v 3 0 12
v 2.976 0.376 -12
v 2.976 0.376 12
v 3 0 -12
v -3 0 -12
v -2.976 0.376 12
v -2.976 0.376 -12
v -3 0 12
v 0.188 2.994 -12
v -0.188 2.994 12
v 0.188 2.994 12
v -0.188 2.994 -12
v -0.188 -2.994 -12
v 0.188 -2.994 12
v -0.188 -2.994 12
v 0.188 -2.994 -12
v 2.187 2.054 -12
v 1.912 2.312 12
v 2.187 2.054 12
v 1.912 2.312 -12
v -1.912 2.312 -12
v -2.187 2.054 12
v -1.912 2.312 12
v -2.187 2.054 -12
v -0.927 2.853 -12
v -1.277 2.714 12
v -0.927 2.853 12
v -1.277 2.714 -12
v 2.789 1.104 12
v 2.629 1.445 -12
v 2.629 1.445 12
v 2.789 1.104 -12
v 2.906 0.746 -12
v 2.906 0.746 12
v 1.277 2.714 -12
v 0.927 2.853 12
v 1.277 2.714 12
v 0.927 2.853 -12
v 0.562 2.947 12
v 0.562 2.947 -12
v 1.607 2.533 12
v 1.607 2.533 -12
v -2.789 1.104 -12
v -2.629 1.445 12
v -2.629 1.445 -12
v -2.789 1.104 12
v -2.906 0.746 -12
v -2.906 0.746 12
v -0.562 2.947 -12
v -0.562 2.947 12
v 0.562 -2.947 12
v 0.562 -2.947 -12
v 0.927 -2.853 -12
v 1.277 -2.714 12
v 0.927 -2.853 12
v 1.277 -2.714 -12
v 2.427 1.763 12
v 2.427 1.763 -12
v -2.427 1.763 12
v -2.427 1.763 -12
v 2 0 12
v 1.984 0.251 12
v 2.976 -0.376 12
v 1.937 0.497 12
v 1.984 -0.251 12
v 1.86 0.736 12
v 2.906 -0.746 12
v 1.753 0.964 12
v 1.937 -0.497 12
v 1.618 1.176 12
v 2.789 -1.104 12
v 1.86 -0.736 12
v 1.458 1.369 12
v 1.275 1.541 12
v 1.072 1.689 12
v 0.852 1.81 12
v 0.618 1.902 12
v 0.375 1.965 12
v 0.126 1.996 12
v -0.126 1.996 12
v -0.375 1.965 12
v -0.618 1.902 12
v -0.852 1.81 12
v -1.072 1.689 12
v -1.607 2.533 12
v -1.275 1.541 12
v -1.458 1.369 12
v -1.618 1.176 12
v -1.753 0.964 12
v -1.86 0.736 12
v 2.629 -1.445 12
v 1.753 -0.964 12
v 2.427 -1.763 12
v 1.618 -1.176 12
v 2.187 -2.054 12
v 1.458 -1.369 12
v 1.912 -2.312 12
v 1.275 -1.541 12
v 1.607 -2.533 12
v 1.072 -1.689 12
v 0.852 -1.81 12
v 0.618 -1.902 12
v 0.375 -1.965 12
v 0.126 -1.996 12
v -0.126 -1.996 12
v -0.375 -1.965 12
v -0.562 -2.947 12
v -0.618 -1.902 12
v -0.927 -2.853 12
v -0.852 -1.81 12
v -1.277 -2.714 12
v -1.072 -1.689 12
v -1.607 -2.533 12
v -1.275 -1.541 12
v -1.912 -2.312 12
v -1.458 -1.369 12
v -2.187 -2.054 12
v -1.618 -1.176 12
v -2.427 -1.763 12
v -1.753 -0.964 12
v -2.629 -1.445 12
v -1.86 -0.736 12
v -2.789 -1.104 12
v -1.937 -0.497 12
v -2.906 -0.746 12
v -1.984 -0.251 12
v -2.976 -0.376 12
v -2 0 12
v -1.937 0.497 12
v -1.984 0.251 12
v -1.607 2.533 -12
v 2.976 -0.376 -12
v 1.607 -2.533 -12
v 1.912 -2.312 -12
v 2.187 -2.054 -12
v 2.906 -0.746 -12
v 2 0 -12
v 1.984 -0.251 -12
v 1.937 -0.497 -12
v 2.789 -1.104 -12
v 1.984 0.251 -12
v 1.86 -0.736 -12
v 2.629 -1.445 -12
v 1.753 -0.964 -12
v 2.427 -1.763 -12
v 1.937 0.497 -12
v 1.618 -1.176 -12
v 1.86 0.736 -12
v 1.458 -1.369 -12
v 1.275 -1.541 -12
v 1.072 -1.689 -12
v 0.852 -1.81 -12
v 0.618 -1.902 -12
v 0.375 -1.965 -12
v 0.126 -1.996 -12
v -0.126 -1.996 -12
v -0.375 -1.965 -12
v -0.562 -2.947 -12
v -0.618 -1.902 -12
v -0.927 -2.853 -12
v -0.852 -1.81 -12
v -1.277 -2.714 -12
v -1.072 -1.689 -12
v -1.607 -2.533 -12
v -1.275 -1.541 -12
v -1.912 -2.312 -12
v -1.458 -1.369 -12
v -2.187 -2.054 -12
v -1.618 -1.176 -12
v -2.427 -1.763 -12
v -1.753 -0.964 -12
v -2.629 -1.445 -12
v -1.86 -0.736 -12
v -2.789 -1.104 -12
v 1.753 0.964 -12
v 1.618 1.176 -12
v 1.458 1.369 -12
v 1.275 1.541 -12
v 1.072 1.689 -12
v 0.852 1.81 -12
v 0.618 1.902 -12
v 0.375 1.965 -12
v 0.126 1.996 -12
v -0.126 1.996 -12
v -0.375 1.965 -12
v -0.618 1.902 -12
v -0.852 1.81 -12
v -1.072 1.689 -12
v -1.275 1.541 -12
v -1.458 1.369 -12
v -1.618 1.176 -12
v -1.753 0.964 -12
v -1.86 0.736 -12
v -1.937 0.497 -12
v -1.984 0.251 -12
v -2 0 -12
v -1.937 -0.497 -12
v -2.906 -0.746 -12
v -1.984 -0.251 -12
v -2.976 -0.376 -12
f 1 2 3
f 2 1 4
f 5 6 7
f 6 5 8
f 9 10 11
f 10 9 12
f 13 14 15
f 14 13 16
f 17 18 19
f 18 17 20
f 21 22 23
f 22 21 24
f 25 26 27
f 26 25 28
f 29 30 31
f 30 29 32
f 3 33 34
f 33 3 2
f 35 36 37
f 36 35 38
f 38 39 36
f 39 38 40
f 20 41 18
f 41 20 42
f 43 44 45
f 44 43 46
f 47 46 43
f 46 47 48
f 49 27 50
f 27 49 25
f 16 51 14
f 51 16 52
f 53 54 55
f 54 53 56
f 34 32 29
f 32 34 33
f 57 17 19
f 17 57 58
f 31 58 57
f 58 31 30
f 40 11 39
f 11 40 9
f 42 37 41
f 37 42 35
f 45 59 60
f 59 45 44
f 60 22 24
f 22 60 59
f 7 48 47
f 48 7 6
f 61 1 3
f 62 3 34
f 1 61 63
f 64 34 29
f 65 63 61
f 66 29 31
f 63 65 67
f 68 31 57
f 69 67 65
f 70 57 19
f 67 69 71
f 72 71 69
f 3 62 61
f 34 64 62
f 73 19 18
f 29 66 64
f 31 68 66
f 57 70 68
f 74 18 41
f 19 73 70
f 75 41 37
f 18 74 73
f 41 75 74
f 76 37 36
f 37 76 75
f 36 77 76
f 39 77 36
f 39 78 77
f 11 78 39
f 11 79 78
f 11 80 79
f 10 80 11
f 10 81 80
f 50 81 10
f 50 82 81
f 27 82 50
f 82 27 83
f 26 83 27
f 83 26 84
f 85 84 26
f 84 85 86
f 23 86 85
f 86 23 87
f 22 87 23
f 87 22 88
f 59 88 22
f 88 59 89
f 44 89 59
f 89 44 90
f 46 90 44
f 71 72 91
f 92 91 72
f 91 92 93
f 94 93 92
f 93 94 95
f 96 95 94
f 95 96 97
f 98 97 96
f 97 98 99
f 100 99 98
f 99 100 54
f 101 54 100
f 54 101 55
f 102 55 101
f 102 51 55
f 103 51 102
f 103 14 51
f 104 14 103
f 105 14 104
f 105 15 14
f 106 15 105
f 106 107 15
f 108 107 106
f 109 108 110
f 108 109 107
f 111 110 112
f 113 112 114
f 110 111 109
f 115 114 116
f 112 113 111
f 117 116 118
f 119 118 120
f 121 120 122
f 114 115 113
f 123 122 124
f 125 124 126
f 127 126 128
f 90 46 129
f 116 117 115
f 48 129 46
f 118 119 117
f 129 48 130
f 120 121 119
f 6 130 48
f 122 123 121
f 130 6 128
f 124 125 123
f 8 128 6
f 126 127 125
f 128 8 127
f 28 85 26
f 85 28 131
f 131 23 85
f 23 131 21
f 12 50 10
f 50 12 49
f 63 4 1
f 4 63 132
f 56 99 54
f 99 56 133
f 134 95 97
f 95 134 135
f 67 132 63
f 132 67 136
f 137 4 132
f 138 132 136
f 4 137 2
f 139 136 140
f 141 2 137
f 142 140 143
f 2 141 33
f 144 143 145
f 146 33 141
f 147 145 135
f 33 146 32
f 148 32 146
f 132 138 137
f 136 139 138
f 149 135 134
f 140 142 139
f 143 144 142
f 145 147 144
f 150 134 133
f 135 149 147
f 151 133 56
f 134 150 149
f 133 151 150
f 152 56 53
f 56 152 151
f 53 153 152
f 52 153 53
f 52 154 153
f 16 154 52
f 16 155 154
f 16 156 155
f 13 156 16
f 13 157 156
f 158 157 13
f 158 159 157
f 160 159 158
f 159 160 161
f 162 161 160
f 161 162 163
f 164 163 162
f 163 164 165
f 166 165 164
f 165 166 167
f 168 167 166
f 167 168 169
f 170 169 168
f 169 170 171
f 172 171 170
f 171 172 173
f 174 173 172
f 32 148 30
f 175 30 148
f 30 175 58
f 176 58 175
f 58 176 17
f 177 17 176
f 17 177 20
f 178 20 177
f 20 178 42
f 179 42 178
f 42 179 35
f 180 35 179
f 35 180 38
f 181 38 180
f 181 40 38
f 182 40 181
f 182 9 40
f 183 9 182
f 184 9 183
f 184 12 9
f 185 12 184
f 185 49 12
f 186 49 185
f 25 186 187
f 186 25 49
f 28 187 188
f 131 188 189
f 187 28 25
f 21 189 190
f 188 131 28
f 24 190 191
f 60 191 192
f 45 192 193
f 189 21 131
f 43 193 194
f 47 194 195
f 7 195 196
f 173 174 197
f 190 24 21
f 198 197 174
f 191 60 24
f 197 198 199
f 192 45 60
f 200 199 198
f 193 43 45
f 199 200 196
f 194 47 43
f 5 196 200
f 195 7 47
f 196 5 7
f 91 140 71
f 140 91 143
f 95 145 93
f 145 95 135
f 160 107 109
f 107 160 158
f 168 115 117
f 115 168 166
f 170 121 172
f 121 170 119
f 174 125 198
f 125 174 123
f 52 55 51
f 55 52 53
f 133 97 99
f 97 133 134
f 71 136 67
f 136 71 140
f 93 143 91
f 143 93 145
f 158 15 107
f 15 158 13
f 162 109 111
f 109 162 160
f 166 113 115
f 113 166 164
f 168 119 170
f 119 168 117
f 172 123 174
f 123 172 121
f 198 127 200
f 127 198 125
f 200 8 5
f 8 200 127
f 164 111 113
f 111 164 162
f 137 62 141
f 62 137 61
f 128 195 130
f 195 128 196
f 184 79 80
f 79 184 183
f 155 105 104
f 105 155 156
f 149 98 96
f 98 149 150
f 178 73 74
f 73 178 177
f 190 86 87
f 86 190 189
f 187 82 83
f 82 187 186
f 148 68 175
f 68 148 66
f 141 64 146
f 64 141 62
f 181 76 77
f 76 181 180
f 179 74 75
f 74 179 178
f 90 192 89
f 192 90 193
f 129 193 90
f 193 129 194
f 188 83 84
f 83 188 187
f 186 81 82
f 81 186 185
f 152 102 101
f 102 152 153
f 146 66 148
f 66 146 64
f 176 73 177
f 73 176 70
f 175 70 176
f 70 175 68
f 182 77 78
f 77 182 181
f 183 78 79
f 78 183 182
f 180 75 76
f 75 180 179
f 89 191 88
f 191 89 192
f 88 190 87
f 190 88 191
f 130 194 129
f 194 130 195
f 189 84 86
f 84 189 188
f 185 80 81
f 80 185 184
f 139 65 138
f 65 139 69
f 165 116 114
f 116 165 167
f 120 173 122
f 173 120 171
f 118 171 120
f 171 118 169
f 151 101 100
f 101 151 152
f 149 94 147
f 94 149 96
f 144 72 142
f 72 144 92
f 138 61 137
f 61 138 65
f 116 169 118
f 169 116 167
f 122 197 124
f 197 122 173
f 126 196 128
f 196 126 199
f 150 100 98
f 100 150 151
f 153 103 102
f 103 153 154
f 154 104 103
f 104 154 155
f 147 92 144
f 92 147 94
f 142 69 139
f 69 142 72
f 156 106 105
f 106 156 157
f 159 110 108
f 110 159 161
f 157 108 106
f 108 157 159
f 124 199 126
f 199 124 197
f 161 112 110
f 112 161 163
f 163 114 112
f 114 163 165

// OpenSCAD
$fn = 50;


difference() {
	union() {
		translate(v = [0, 0, -12.0000000000]) {
			cylinder(h = 24, r = 3.0000000000);
		}
	}
	union() {
		translate(v = [0, 0, -100.0000000000]) {
			cylinder(h = 200, r = 2);
		}
	}
}
